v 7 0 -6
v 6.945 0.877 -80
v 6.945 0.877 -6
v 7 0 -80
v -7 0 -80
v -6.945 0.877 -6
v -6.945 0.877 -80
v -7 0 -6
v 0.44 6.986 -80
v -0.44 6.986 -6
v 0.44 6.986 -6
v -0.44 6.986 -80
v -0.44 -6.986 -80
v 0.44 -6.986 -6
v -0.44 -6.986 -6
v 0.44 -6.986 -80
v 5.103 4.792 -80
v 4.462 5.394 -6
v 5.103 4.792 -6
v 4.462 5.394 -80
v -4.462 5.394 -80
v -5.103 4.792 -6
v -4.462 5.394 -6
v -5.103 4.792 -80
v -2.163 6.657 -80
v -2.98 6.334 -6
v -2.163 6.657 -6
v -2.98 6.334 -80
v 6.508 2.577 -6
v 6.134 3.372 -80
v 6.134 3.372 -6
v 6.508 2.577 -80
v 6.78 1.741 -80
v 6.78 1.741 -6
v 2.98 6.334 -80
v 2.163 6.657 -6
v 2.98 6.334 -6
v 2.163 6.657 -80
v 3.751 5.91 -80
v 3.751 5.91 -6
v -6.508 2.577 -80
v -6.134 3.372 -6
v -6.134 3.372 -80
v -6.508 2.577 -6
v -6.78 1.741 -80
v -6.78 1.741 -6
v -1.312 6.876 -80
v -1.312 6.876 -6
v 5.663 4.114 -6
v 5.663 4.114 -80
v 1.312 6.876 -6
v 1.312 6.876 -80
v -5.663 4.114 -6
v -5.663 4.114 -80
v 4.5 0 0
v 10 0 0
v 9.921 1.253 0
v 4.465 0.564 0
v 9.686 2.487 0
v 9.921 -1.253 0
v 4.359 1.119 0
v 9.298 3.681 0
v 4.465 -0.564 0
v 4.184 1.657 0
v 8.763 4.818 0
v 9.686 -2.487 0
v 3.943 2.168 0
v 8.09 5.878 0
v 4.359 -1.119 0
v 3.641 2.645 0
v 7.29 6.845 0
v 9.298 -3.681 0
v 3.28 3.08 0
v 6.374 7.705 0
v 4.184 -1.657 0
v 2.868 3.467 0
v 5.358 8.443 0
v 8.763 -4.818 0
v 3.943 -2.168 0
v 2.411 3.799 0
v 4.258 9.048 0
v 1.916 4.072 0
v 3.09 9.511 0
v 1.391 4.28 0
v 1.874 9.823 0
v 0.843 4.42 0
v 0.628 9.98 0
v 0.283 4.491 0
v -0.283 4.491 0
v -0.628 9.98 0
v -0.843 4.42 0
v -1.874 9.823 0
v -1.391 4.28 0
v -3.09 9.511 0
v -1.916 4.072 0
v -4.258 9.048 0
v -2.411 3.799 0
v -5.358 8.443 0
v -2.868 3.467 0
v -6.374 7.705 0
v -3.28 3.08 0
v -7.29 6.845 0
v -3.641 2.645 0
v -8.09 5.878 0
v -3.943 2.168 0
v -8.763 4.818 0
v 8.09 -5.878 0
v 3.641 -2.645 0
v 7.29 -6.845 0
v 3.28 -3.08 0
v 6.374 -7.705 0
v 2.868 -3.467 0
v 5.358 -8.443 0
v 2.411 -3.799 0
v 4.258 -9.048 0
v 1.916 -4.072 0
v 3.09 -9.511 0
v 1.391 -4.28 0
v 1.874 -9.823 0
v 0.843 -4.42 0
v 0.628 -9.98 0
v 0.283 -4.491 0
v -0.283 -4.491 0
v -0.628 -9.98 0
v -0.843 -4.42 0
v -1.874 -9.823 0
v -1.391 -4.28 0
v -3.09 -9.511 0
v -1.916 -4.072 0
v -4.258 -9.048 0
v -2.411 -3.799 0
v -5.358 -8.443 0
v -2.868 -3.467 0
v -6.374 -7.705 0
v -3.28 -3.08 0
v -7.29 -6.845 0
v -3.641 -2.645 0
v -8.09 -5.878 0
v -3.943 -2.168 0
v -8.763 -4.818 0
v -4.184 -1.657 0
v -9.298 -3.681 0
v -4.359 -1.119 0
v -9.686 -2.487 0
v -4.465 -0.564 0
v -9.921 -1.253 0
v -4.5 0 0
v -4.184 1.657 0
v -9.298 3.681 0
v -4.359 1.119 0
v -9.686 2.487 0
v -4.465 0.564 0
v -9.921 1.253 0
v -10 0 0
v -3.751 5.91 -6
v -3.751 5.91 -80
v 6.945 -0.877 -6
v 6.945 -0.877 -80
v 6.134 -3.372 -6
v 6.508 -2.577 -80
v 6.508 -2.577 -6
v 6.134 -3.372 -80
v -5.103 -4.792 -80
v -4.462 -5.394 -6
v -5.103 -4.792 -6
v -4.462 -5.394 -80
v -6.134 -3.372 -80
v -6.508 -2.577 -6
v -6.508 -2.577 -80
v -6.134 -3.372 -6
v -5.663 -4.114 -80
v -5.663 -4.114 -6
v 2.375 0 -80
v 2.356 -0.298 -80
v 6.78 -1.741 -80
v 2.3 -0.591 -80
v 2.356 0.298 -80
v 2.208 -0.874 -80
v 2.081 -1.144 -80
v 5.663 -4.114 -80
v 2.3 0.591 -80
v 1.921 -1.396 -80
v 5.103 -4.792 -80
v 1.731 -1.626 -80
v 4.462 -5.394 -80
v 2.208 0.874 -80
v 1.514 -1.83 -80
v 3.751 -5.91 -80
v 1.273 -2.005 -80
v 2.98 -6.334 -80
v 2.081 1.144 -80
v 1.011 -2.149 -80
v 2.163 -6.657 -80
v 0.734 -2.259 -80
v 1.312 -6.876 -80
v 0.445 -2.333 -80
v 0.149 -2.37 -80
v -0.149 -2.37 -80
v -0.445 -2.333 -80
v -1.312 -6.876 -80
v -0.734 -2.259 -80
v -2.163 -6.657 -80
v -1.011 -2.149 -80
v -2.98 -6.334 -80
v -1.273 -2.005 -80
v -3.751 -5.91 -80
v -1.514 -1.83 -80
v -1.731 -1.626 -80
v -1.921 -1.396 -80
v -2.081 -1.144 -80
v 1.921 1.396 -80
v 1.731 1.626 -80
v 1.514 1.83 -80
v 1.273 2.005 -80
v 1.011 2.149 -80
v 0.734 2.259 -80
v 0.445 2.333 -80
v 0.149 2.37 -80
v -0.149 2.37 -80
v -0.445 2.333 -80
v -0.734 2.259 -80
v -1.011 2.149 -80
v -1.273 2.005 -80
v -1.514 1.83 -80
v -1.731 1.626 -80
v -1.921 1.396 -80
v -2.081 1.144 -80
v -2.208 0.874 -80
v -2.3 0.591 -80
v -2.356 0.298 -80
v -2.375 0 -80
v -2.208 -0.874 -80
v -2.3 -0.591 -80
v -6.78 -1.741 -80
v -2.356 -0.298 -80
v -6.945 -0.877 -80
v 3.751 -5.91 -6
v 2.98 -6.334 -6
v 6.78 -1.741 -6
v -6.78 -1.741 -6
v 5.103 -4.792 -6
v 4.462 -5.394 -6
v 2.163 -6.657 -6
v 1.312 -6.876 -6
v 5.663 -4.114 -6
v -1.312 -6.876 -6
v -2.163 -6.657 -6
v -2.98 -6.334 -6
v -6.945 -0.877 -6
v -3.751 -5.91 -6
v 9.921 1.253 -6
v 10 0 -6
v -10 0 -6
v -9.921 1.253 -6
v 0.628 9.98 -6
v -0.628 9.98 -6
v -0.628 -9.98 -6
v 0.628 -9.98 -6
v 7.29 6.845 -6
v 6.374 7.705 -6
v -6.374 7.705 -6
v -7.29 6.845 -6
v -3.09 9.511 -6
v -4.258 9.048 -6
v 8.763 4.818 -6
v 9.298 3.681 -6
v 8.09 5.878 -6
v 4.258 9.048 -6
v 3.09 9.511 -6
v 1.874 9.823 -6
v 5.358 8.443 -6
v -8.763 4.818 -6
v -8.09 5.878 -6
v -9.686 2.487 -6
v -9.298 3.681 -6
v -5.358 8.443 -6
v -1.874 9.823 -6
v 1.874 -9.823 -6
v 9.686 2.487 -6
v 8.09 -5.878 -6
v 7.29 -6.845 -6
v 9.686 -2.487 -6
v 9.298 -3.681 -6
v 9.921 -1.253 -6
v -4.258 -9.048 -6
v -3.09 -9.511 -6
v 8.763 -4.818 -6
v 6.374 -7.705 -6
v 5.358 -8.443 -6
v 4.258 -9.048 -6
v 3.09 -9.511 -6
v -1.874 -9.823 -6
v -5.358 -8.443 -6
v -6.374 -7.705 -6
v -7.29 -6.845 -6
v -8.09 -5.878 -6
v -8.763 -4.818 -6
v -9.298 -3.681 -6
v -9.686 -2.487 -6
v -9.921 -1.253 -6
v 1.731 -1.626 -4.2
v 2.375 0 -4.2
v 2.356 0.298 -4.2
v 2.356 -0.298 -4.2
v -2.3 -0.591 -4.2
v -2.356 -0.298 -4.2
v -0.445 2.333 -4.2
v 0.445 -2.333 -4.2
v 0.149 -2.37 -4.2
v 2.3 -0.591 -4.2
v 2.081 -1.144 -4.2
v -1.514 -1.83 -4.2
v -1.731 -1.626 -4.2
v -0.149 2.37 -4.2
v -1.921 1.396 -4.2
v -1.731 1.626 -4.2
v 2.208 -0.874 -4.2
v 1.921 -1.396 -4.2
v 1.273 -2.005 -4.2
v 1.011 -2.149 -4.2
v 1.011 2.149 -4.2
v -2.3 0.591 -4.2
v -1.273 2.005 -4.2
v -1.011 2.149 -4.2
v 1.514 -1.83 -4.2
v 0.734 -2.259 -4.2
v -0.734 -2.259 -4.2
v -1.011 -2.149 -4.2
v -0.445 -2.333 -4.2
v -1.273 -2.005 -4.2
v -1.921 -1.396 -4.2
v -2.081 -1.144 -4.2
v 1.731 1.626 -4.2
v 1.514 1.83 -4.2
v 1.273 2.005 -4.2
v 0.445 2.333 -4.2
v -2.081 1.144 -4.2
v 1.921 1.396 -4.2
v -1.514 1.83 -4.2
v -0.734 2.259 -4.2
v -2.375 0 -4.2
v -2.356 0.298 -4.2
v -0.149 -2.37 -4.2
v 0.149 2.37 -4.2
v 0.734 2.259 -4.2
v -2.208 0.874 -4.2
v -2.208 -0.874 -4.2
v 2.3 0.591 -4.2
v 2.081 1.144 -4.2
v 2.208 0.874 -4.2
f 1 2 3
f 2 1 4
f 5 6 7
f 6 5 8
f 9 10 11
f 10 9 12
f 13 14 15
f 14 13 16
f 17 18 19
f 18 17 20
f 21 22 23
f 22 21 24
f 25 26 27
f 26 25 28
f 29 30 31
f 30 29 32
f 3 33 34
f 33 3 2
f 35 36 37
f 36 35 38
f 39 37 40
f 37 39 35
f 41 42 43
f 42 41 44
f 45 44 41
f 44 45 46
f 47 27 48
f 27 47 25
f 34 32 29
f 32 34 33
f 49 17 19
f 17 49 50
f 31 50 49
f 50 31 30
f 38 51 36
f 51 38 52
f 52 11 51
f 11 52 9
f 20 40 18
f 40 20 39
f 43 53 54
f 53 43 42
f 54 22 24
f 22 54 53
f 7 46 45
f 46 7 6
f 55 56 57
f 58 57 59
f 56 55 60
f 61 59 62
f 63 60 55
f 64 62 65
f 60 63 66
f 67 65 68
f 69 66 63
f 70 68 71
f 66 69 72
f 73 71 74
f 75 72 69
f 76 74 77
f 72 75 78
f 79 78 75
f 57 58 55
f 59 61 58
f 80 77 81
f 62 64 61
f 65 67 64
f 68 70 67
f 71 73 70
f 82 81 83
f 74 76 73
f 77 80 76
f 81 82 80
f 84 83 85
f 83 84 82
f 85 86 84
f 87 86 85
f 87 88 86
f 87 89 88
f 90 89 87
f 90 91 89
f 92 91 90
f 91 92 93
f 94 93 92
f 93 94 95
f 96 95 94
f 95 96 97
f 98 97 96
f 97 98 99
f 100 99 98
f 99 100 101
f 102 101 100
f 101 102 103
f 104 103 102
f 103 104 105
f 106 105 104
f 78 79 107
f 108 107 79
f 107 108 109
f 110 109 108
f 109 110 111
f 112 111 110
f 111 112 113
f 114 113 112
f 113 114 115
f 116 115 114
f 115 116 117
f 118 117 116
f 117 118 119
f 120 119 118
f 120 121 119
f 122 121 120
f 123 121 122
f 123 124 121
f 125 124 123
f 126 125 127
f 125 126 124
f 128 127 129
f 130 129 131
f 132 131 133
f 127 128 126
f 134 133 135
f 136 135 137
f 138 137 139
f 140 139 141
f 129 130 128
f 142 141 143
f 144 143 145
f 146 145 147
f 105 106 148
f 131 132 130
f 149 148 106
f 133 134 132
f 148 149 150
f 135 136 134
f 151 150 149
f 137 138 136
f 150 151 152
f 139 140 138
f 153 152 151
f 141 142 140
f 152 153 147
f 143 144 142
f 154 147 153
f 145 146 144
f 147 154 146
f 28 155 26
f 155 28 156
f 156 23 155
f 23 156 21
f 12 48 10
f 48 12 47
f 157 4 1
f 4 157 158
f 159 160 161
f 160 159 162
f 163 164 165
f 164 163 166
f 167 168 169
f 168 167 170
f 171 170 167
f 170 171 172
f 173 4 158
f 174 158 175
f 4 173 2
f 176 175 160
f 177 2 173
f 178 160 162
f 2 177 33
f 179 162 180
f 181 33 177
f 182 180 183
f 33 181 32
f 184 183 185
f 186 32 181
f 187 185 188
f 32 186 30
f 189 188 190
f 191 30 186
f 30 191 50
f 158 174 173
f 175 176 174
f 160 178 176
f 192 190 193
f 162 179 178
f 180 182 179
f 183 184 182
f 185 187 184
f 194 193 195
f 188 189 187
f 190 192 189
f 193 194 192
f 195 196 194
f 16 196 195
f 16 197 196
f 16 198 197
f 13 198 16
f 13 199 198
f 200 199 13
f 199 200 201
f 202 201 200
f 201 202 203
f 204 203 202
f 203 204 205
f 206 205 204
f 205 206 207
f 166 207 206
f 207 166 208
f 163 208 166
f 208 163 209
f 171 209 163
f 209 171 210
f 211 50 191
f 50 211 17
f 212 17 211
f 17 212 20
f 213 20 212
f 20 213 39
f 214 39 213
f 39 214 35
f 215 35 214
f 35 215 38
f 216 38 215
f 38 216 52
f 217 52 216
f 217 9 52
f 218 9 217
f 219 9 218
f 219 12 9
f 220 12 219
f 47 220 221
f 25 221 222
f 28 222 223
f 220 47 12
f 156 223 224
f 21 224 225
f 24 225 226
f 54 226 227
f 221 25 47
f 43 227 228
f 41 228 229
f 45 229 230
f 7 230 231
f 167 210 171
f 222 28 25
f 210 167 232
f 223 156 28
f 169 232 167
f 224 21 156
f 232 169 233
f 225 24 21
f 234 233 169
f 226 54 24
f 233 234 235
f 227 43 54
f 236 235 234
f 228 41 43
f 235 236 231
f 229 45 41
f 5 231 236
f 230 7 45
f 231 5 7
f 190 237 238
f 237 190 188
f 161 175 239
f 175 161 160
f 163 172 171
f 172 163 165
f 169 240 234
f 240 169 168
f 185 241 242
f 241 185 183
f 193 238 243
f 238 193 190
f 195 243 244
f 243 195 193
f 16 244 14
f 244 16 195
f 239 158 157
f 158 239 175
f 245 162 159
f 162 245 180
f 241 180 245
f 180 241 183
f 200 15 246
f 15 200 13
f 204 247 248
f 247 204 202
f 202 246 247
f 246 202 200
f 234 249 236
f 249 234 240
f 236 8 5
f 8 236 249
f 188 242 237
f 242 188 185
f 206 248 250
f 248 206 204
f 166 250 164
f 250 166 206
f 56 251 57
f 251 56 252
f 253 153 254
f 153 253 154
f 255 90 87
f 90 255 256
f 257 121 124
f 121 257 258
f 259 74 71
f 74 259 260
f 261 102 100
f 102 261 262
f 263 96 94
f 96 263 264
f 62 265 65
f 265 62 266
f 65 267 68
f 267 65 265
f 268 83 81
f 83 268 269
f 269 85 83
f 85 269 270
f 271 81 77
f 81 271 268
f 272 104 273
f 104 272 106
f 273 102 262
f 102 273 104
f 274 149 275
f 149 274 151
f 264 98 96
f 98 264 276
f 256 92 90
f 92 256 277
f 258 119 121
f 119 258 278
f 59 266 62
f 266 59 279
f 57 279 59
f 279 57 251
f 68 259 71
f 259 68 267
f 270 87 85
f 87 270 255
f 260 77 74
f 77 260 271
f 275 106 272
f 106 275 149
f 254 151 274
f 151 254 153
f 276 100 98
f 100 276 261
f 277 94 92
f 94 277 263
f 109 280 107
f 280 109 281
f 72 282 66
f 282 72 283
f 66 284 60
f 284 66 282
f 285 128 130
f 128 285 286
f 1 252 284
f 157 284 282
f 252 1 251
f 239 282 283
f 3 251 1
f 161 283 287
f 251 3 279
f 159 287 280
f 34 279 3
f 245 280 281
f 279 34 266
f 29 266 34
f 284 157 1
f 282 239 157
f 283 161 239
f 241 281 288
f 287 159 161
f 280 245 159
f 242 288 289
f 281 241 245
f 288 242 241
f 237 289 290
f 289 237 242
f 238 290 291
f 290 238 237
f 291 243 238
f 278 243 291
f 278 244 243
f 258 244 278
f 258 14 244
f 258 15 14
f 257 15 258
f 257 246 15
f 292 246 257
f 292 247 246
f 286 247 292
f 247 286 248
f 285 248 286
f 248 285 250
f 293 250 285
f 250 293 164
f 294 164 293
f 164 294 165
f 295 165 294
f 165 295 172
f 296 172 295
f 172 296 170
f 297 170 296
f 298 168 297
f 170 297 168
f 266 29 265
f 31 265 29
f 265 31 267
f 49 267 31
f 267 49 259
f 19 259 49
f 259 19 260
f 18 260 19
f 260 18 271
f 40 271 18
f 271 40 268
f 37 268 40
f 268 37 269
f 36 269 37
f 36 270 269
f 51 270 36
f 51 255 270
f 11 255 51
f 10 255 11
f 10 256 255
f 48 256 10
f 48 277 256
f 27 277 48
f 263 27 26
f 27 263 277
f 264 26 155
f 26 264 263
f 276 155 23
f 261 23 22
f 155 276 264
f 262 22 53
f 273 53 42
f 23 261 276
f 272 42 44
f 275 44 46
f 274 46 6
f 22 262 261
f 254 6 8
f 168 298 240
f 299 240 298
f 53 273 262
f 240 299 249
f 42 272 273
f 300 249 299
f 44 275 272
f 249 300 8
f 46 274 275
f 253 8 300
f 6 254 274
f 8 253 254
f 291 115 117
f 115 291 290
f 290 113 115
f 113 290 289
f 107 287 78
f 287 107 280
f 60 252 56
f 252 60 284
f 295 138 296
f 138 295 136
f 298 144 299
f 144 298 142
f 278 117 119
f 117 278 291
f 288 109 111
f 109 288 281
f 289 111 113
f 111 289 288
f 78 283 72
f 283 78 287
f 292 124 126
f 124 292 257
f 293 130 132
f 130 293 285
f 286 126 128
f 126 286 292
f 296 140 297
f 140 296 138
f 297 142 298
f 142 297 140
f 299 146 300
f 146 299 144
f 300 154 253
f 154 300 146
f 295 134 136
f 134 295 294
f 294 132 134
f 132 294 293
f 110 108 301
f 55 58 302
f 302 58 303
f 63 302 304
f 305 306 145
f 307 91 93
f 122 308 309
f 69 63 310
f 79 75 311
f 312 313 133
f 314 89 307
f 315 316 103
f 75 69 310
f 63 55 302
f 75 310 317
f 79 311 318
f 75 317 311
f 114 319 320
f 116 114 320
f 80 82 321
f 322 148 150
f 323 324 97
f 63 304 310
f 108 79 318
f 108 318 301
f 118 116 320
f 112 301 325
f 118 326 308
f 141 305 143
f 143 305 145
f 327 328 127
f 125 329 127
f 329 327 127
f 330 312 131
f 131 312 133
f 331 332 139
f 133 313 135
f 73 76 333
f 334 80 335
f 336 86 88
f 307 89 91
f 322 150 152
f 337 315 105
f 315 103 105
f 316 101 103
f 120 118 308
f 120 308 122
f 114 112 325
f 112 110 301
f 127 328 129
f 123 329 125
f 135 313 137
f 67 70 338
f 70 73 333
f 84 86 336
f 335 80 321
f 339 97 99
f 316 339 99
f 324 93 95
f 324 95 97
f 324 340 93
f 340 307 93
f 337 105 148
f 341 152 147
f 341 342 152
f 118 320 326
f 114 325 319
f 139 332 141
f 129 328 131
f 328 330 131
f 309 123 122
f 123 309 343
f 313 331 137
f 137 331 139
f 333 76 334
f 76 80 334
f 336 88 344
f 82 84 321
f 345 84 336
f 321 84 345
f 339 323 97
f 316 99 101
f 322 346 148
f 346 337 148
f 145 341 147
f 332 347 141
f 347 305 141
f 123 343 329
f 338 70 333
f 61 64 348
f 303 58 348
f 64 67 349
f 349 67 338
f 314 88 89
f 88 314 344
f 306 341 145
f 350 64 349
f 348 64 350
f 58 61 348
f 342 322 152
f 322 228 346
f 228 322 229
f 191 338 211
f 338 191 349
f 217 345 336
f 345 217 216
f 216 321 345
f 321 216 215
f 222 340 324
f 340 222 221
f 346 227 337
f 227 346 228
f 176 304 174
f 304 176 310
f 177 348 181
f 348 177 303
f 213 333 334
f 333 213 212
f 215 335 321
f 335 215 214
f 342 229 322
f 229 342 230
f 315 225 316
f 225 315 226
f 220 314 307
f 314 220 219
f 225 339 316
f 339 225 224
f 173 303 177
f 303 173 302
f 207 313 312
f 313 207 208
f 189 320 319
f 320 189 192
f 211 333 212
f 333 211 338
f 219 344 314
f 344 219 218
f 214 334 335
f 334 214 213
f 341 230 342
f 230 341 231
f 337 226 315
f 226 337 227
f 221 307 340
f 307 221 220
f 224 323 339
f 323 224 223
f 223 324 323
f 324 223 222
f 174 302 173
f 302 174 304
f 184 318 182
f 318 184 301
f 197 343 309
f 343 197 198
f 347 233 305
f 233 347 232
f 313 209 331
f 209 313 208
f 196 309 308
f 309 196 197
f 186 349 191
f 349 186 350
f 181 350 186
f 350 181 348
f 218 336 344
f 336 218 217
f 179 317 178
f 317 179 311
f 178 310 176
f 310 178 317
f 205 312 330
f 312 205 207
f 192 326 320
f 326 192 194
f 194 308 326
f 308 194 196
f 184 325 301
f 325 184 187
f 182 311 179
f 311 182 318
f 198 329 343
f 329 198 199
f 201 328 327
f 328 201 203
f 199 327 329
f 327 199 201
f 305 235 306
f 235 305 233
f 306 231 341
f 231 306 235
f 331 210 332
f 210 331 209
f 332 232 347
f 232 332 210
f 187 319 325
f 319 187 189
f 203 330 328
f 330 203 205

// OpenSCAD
$fn = 50;


difference() {
	union() {
		translate(v = [0, 0, -80.0000000000]) {
			cylinder(h = 80, r = 7.0000000000);
		}
		translate(v = [0, 0, -6.0000000000]) {
			cylinder(h = 6, r = 10.0000000000);
		}
	}
	union() {
		translate(v = [0, 0, 0]) {
			rotate(a = [0, 0, 0]) {
				difference() {
					union() {
						#translate(v = [0, 0, -80.0000000000]) {
							cylinder(h = 80, r = 2.2500000000);
						}
						#translate(v = [0, 0, -4.2000000000]) {
							cylinder(h = 4.2000000000, r = 7.0000000000, r1 = 2.3750000000, r2 = 4.5000000000);
						}
						#translate(v = [0, 0, -80.0000000000]) {
							cylinder(h = 80, r = 2.3750000000);
						}
						#translate(v = [0, 0, -80.0000000000]) {
							cylinder(h = 80, r = 2.2500000000);
						}
					}
					union();
				}
			}
		}
	}
}
